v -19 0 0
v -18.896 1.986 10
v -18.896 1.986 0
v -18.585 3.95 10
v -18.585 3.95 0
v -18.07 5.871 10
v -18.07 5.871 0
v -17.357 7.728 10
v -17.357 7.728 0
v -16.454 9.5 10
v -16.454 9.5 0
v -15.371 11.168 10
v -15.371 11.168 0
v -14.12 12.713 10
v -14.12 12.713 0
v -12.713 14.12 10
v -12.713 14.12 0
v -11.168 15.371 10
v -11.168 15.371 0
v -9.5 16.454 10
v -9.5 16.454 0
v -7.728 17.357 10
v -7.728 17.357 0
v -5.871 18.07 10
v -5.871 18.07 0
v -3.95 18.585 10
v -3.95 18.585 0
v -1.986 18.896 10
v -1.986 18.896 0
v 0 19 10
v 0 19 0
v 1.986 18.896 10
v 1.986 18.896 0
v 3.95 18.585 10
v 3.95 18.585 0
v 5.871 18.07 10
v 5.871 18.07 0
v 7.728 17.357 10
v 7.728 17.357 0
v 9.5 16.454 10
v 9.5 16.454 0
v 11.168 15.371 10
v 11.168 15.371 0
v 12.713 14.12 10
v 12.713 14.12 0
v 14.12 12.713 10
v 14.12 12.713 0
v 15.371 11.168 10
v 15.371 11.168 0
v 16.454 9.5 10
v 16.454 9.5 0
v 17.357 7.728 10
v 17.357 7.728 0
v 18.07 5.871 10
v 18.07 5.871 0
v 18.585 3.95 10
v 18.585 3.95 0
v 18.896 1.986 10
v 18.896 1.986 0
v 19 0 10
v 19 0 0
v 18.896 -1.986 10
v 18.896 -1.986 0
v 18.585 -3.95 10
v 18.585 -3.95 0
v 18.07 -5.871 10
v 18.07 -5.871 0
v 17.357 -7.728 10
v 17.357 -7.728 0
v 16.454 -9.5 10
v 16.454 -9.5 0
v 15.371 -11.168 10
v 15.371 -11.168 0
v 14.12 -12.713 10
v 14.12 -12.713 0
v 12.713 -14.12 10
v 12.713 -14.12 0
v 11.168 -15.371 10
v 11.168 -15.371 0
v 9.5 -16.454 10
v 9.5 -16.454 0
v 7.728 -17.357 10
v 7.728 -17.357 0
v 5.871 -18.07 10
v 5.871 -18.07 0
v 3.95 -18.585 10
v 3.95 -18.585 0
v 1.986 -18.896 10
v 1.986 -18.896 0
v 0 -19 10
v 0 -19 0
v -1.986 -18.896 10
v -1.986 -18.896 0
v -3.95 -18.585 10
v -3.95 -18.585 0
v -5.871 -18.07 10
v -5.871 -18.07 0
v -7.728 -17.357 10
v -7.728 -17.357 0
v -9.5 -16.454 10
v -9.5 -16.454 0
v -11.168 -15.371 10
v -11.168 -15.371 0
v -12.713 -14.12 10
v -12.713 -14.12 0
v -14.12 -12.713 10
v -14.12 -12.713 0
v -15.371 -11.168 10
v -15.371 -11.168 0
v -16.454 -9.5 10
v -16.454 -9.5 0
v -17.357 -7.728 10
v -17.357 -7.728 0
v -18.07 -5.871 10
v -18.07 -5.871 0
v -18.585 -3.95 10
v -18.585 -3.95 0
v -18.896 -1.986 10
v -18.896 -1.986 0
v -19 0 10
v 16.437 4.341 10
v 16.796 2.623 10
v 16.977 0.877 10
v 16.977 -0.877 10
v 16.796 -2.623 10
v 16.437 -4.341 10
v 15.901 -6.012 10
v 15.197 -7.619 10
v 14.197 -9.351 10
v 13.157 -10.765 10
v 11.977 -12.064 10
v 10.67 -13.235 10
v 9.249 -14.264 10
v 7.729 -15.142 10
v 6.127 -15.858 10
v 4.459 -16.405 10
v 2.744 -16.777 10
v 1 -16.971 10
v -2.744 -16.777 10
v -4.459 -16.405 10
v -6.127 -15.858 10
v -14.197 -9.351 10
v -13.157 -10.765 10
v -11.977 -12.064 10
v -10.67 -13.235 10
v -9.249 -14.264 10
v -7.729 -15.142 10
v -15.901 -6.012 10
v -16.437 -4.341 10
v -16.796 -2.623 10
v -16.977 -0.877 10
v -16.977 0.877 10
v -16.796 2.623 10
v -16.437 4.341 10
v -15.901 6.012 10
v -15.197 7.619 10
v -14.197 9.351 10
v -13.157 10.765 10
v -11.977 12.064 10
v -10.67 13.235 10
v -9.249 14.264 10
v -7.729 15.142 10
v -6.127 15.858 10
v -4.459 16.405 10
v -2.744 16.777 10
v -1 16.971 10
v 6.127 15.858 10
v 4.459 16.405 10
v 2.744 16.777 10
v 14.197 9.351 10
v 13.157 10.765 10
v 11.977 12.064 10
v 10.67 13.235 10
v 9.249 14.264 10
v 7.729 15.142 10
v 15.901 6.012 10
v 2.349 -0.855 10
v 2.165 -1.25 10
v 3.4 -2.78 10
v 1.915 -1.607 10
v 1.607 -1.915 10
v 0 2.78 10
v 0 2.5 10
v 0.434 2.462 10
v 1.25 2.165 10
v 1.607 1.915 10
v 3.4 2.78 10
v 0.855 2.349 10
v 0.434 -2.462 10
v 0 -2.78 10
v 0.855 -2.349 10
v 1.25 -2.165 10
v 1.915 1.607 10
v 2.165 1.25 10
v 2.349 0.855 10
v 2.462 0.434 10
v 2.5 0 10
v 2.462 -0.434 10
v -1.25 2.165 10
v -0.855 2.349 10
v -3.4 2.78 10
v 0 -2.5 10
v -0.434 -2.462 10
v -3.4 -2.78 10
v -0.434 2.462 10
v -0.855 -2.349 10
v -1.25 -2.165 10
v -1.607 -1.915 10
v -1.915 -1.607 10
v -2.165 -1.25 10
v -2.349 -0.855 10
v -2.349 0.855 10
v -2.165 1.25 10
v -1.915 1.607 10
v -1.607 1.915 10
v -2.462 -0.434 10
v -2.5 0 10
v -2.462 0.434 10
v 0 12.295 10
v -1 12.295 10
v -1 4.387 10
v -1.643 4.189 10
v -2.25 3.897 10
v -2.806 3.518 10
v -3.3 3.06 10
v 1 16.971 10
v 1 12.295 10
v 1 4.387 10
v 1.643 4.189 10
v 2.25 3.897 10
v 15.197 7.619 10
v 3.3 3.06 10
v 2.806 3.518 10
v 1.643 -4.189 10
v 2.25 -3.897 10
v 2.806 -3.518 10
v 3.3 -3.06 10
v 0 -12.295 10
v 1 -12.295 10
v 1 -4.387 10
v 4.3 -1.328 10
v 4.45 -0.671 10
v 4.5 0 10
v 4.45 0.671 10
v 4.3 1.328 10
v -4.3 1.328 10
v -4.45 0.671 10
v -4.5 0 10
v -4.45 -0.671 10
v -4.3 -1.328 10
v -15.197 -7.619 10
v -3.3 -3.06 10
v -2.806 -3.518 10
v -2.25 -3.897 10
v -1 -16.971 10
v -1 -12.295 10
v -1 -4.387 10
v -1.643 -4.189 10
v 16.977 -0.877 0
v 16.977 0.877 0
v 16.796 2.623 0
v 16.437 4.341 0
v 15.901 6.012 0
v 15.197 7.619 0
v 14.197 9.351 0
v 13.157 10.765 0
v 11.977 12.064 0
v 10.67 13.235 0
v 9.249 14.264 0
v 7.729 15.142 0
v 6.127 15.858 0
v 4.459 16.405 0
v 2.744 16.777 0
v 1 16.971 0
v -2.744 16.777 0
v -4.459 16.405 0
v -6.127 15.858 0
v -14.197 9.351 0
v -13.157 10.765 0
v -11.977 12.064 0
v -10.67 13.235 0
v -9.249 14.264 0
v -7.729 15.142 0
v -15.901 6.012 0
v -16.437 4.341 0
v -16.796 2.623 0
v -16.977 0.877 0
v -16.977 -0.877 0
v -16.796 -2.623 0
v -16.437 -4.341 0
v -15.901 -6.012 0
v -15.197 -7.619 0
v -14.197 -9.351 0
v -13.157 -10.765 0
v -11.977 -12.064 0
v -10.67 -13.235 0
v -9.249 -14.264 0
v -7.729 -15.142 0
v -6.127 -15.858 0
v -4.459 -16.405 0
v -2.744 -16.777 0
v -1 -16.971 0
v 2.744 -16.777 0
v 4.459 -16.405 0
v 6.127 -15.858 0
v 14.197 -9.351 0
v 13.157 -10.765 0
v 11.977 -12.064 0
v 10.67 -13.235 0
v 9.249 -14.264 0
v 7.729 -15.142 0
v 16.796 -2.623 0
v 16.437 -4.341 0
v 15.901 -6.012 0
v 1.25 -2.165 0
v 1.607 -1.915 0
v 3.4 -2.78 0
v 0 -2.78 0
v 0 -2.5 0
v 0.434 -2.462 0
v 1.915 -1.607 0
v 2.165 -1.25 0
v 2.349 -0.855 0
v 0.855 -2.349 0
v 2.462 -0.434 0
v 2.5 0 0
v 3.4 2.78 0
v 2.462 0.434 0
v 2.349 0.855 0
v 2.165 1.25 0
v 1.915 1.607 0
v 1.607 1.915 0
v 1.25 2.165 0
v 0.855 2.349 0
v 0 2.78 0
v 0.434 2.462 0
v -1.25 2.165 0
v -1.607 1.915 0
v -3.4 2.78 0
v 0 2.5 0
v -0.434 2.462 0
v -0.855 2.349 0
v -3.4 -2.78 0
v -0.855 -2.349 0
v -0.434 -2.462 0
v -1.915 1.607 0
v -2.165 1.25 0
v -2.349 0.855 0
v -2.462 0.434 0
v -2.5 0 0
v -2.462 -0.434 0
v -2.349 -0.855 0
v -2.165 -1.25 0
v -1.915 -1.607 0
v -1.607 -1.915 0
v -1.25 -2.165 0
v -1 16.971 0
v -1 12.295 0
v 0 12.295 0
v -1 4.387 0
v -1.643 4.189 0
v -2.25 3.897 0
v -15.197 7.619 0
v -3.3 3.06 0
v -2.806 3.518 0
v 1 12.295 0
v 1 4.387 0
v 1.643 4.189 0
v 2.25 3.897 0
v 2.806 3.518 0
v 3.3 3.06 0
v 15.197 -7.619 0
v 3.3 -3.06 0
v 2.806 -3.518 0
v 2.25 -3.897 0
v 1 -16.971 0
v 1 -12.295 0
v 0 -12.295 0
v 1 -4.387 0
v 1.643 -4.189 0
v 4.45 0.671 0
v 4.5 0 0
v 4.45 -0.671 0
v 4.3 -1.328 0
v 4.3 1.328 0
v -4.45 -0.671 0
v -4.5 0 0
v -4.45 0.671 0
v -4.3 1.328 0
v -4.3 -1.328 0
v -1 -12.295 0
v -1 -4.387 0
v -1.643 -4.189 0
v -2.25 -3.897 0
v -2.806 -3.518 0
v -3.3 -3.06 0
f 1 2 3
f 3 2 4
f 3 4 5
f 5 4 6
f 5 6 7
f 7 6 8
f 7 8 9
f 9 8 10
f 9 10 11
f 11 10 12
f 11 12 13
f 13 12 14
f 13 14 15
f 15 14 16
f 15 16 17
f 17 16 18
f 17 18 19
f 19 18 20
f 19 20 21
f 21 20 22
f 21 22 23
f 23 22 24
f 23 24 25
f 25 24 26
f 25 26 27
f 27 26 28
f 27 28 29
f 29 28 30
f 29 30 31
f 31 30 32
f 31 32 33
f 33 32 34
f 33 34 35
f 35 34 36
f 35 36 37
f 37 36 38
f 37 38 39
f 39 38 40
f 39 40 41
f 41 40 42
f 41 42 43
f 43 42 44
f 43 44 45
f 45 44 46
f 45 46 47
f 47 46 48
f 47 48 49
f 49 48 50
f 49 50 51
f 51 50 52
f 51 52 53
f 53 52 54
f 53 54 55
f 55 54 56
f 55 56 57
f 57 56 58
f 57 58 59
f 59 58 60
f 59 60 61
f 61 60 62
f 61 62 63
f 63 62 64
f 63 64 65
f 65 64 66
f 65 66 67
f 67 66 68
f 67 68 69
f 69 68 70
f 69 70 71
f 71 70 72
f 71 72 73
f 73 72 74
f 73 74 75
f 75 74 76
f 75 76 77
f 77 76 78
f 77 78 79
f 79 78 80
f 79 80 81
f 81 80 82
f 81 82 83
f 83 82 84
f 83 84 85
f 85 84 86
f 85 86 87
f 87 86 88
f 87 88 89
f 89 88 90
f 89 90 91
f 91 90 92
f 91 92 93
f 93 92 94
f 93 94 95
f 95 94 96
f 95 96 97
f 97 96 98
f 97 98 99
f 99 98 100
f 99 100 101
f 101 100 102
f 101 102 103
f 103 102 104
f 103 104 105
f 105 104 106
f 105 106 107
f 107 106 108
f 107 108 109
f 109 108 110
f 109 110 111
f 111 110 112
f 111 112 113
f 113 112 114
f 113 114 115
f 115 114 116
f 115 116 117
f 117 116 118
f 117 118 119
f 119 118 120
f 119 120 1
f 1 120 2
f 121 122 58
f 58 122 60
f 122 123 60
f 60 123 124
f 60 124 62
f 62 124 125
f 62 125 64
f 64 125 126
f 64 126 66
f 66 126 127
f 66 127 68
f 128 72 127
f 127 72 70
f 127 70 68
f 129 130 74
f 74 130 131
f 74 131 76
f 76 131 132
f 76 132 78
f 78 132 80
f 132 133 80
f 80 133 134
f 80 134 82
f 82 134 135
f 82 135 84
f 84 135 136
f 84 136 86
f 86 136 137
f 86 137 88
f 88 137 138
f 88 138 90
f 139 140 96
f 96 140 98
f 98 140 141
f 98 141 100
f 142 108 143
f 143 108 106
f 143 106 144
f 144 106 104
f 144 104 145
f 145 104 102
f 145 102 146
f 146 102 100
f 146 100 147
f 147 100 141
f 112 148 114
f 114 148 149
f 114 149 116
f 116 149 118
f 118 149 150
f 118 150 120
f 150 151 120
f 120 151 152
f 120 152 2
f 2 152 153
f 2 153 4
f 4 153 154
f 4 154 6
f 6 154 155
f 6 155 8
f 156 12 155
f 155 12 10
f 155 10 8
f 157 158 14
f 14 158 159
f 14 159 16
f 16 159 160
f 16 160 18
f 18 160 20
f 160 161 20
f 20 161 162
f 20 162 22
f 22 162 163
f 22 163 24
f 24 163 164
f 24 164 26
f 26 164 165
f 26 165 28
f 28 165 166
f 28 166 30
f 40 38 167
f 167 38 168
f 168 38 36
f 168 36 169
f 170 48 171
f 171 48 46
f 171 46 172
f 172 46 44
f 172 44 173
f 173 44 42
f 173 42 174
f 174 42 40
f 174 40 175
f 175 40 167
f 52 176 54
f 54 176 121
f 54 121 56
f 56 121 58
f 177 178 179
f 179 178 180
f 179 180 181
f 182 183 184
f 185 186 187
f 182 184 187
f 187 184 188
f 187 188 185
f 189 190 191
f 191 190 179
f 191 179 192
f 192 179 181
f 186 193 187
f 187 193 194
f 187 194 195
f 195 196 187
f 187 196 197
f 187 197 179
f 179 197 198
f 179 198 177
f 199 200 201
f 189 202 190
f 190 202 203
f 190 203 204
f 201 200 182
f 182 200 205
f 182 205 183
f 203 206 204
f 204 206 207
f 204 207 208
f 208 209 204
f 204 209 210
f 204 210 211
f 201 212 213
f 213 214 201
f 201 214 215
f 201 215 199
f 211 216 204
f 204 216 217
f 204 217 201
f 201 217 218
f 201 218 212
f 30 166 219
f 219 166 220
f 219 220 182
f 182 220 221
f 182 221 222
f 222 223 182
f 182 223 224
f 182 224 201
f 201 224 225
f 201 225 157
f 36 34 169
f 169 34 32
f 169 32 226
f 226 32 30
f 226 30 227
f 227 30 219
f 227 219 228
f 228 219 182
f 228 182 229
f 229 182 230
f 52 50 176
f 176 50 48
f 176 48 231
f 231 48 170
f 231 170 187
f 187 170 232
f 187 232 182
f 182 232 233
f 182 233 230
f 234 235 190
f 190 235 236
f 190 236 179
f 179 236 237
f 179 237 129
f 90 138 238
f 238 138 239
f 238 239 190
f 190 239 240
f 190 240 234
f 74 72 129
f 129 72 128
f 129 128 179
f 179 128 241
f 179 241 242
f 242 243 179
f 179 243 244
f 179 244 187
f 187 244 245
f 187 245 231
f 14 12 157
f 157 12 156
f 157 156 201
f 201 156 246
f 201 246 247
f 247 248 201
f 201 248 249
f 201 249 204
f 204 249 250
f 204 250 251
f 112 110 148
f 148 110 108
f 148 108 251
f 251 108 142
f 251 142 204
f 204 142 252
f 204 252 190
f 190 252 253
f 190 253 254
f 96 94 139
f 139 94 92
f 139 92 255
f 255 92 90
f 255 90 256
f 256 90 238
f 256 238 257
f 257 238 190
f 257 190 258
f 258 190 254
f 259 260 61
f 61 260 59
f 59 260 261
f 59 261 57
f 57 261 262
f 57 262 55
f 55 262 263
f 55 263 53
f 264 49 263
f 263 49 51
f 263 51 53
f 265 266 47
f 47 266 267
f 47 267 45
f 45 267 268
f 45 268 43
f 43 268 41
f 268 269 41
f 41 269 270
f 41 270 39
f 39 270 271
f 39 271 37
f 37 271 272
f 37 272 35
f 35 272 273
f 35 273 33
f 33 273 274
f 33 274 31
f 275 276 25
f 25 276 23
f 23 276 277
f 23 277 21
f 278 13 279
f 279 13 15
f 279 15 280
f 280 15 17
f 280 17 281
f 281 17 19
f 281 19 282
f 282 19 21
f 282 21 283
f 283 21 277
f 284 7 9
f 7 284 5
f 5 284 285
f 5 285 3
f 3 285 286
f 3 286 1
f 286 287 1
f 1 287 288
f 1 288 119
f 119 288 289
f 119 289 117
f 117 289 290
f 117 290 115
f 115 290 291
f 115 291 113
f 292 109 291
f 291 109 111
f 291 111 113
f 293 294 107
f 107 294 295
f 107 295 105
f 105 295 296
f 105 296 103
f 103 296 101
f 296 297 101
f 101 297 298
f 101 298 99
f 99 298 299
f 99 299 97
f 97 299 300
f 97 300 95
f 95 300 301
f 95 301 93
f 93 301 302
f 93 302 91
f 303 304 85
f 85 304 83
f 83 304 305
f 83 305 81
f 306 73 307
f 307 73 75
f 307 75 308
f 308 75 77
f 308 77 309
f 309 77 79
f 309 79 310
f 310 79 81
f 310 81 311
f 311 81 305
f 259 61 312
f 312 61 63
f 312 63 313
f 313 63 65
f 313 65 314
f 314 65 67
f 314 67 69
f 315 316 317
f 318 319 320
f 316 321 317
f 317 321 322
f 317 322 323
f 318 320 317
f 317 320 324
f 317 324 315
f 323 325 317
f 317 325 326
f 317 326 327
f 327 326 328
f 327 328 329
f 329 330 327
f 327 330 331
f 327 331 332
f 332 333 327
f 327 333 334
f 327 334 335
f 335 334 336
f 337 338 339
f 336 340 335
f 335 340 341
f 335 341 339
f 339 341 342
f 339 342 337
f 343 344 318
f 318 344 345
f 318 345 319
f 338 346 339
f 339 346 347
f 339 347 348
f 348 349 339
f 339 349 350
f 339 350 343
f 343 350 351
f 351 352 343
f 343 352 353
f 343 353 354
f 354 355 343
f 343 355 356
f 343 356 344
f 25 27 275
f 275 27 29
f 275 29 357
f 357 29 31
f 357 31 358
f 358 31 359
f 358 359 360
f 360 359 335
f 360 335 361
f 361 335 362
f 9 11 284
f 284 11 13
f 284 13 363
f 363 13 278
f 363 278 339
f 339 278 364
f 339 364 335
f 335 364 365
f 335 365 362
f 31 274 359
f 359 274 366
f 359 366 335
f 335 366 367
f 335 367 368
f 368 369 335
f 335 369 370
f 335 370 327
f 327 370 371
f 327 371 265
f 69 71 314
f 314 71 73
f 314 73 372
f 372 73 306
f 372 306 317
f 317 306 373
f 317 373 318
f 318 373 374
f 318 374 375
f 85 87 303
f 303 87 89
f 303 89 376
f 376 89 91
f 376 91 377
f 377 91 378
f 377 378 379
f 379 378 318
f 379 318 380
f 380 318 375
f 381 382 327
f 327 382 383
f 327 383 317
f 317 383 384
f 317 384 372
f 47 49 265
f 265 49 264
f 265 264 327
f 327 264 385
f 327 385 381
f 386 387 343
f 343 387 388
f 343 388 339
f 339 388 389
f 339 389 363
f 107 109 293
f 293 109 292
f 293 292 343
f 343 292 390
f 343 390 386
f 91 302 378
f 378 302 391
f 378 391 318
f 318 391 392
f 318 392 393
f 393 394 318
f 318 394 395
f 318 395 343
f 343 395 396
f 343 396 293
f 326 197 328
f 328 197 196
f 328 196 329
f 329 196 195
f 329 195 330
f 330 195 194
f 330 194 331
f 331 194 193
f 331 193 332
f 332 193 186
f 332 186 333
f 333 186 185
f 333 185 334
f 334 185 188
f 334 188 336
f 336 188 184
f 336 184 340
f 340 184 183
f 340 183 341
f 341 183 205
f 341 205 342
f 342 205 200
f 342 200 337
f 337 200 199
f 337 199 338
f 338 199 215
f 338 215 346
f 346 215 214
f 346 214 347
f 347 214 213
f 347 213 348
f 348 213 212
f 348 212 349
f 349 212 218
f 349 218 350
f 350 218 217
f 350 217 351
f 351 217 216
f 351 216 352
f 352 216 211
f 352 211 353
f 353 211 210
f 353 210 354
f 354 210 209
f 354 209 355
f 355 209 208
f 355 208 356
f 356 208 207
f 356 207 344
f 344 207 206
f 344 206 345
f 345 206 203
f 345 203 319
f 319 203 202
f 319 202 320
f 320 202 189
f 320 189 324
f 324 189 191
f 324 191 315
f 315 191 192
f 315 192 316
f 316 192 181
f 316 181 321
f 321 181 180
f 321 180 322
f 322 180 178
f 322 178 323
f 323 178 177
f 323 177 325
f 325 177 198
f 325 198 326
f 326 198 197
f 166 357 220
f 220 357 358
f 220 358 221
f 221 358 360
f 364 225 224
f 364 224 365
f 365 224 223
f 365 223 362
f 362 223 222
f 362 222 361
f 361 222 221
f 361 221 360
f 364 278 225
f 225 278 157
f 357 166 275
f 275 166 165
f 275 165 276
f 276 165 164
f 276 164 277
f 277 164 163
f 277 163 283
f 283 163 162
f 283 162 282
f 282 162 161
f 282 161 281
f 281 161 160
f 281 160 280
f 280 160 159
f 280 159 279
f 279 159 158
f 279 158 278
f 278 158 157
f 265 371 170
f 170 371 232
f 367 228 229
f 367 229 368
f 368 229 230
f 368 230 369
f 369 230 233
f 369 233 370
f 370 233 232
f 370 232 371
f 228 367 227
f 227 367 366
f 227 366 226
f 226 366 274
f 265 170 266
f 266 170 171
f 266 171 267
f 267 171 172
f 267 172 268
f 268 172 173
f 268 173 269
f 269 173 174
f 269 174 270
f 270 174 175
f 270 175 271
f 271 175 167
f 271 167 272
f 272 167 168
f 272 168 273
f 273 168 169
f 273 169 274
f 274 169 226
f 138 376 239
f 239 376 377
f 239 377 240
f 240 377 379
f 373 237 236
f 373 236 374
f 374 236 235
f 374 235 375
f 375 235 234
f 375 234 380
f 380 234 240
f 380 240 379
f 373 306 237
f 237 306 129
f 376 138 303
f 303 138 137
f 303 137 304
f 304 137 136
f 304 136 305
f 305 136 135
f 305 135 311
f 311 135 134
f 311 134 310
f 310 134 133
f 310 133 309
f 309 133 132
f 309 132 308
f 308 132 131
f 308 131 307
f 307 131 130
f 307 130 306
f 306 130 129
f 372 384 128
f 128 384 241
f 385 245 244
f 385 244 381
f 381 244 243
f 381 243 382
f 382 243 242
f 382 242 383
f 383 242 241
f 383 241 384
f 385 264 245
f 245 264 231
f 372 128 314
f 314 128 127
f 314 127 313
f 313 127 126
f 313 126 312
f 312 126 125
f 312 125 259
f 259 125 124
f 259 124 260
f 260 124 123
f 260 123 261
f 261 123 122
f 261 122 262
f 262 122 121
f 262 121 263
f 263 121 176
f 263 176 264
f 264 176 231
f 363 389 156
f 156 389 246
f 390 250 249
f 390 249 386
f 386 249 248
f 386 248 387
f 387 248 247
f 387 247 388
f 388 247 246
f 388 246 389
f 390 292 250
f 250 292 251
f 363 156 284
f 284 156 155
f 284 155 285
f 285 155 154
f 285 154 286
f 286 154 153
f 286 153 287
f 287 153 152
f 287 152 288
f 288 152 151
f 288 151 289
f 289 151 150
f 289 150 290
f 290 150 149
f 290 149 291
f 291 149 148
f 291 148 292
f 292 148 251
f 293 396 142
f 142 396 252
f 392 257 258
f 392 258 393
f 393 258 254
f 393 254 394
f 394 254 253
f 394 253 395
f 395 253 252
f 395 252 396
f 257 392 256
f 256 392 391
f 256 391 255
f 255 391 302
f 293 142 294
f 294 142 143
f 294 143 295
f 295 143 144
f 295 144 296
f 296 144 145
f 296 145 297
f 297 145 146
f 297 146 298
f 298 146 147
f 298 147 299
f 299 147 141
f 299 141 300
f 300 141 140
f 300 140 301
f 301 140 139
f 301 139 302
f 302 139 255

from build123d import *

# Parameters (mm, degrees)
SKETCH1_R           = 19
BOSS_EXTRUDE1_DEPTH = 10
SKETCH2_R           = 2.5
CUT_EXTRUDE1_DEPTH  = 10
CUT_EXTRUDE2_DEPTH  = 10


with BuildPart() as part:
    # Sketch1 → Boss-Extrude1 (new body)
    with BuildSketch(Plane.XY):
        Circle(SKETCH1_R)
    extrude(amount=BOSS_EXTRUDE1_DEPTH)

    # Sketch2 → Cut-Extrude1 (cut)
    with BuildSketch(Plane.XY.offset(10)):
        Circle(SKETCH2_R)
    extrude(amount=-CUT_EXTRUDE1_DEPTH, mode=Mode.SUBTRACT)

    # Sketch3 → Cut-Extrude2 (cut)
    with BuildSketch(Plane.XY.offset(10)):
        with BuildLine():
            ThreePointArc((-3.299671038, 3.059766501), (-2.25, 3.897114317), (-1, 4.387482194))
            Line((-1, 4.387482194), (-1, 16.970562748))
            ThreePointArc((-1, 16.970562748), (-8.5, 14.722431864), (-14.196938457, 9.351306778))
            Line((-14.196938457, 9.351306778), (-3.299671038, 3.059766501))
        make_face()
        with BuildLine():
            ThreePointArc((-4.299671038, -1.327715693), (-4.5, 0), (-4.299671038, 1.327715693))
            Line((-4.299671038, 1.327715693), (-15.196938457, 7.61925597))
            ThreePointArc((-15.196938457, 7.61925597), (-17, 0), (-15.196938457, -7.61925597))
            Line((-15.196938457, -7.61925597), (-4.299671038, -1.327715693))
        make_face()
        with BuildLine():
            ThreePointArc((-1, -4.387482194), (-2.25, -3.897114317), (-3.299671038, -3.059766501))
            Line((-3.299671038, -3.059766501), (-14.196938457, -9.351306778))
            ThreePointArc((-14.196938457, -9.351306778), (-8.5, -14.722431864), (-1, -16.970562748))
            Line((-1, -16.970562748), (-1, -4.387482194))
        make_face()
        with BuildLine():
            Line((14.196938457, -9.351306778), (3.299671038, -3.059766501))
            ThreePointArc((3.299671038, -3.059766501), (2.25, -3.897114317), (1, -4.387482194))
            Line((1, -4.387482194), (1, -16.970562748))
            ThreePointArc((1, -16.970562748), (8.5, -14.722431864), (14.196938457, -9.351306778))
        make_face()
        with BuildLine():
            Line((15.196938457, 7.61925597), (4.299671038, 1.327715693))
            ThreePointArc((4.299671038, 1.327715693), (4.449635922, 0.671371852), (4.5, 0))
            ThreePointArc((4.5, 0), (4.449635922, -0.671371852), (4.299671038, -1.327715693))
            Line((4.299671038, -1.327715693), (15.196938457, -7.61925597))
            ThreePointArc((15.196938457, -7.61925597), (16.543094538, -3.9148465), (17, 0))
            ThreePointArc((17, 0), (16.543094538, 3.9148465), (15.196938457, 7.61925597))
        make_face()
        with BuildLine():
            Line((1, 16.970562748), (1, 4.387482194))
            ThreePointArc((1, 4.387482194), (2.25, 3.897114317), (3.299671038, 3.059766501))
            Line((3.299671038, 3.059766501), (14.196938457, 9.351306778))
            ThreePointArc((14.196938457, 9.351306778), (8.5, 14.722431864), (1, 16.970562748))
        make_face()
    extrude(amount=-CUT_EXTRUDE2_DEPTH, mode=Mode.SUBTRACT)


solid = part.part
